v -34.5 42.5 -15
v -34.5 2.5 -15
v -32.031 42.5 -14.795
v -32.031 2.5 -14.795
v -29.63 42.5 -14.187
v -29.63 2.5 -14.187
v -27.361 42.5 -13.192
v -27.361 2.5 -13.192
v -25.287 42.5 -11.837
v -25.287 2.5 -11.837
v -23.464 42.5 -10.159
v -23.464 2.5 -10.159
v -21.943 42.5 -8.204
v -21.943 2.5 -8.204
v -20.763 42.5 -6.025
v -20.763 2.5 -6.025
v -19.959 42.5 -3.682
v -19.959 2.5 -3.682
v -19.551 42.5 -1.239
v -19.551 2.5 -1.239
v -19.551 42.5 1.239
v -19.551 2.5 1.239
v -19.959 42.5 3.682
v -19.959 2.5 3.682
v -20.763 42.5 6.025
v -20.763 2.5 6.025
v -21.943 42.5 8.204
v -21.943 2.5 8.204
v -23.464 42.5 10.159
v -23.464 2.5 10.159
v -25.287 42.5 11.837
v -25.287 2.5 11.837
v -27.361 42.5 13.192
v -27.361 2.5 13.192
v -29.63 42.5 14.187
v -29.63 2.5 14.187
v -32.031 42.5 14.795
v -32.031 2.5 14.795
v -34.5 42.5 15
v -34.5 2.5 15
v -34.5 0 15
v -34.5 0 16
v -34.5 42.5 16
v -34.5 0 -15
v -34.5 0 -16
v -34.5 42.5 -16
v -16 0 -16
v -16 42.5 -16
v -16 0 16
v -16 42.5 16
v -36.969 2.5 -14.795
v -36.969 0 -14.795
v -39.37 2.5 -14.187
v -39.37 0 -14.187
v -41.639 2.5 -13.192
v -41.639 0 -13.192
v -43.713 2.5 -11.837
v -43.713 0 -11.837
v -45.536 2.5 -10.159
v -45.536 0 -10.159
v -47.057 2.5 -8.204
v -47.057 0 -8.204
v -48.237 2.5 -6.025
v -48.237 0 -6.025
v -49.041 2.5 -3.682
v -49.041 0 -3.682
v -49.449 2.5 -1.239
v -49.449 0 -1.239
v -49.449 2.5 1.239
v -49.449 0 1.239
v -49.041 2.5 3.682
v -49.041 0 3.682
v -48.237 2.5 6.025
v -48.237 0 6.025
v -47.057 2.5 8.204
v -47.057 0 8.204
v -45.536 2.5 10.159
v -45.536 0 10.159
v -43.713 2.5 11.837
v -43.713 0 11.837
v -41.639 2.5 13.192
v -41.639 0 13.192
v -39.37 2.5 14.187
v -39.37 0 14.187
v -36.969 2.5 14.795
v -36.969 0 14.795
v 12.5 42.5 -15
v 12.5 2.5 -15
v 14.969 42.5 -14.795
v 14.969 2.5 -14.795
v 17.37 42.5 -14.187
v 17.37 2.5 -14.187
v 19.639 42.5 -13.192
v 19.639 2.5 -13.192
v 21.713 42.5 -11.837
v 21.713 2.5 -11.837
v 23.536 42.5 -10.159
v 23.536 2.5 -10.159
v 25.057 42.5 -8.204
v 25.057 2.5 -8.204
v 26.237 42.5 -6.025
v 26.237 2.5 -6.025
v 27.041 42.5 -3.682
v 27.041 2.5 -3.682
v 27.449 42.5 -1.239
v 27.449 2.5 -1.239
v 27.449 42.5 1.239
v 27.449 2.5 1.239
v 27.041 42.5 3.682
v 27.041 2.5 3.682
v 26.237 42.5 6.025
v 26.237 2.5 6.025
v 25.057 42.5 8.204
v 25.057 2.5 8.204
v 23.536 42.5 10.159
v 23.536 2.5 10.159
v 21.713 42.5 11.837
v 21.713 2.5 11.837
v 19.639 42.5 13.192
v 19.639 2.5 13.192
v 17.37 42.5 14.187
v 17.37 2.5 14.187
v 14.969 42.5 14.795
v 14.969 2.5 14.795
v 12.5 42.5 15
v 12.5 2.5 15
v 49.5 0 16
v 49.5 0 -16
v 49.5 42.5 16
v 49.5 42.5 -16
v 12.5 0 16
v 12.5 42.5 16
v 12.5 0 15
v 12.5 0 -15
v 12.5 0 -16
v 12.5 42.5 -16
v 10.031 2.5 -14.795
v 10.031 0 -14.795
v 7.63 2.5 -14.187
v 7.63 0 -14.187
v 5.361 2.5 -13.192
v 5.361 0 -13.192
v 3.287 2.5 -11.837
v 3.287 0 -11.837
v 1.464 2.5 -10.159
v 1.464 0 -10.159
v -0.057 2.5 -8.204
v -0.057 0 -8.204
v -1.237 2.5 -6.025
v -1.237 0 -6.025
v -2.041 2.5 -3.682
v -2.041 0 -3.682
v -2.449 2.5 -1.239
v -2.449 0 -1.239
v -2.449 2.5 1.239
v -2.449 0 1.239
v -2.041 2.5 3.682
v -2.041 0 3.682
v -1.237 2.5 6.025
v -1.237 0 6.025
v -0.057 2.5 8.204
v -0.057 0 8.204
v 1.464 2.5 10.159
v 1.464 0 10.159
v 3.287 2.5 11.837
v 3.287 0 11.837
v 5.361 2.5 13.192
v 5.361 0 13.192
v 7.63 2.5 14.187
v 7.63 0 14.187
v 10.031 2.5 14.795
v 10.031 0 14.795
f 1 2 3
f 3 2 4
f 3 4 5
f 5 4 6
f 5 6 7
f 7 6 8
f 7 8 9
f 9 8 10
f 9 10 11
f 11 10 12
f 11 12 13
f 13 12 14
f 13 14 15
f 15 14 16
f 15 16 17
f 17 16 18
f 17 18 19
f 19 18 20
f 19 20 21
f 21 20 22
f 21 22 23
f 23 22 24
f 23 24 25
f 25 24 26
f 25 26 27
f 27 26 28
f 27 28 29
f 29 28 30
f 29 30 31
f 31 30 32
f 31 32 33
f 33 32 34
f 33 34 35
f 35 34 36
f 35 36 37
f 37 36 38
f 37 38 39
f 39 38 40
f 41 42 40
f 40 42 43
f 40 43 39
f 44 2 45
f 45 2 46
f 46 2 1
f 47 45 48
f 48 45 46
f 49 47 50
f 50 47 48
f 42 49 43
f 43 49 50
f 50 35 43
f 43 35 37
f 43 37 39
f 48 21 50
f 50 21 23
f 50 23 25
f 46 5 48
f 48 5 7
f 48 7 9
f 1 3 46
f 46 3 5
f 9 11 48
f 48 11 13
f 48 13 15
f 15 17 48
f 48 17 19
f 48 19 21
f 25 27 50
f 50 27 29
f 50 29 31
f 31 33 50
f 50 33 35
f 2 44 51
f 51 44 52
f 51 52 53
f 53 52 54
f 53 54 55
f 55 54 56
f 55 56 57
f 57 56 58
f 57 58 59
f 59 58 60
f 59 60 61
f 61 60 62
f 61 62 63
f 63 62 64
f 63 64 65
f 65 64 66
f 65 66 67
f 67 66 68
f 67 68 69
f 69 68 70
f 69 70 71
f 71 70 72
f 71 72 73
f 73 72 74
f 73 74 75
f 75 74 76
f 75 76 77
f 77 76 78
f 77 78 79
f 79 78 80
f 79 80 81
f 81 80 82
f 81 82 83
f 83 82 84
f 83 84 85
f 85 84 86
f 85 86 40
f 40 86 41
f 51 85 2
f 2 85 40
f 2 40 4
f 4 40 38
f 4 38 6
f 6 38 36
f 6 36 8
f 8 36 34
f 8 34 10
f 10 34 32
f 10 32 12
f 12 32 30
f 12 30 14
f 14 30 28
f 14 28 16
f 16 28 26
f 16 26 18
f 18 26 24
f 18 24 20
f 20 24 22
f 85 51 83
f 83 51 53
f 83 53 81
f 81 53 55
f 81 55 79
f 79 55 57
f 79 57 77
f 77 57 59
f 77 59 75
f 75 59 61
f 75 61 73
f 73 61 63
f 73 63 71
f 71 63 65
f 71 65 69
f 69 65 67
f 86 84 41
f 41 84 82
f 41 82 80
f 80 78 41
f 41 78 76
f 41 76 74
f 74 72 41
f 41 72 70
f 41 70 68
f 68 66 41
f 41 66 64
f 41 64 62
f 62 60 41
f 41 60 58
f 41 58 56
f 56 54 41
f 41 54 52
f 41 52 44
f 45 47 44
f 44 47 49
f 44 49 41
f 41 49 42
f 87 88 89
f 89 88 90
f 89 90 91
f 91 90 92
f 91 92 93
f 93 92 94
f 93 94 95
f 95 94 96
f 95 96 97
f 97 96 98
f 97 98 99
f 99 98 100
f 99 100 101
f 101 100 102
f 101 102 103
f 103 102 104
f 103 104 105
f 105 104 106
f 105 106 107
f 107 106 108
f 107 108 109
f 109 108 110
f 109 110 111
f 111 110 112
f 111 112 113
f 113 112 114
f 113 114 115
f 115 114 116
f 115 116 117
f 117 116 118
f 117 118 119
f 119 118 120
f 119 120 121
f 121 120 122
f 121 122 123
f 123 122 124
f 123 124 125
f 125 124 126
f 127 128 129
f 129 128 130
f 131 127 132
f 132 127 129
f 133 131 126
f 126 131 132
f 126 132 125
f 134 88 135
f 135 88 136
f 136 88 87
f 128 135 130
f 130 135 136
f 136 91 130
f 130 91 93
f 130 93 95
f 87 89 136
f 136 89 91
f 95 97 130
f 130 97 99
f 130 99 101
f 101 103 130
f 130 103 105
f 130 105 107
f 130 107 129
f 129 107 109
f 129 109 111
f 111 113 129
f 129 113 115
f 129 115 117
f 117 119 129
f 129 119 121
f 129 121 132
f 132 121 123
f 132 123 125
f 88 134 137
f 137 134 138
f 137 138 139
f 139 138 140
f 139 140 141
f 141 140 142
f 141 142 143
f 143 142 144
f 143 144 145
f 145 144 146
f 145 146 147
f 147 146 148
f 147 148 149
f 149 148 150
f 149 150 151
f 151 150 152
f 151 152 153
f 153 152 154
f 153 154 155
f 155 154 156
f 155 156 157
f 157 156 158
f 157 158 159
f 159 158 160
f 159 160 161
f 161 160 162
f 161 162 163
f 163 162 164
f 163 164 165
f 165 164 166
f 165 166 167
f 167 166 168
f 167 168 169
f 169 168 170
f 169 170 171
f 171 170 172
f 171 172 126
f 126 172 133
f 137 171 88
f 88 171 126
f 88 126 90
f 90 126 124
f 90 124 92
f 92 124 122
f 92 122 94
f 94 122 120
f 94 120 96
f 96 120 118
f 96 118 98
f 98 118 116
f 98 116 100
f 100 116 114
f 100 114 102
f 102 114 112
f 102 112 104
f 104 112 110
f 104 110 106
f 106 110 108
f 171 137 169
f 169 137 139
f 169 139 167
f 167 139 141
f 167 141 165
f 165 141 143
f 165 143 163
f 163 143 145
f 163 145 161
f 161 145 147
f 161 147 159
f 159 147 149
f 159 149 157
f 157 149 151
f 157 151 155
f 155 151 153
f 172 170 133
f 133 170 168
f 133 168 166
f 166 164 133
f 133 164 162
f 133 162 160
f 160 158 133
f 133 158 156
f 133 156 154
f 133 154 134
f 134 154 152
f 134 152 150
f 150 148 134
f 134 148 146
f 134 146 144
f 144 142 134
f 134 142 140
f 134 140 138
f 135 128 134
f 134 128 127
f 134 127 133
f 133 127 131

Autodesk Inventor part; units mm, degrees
ref_plane "YZ Plane" through (0, 0, 0) normal (1, 0, 0) x (0, 1, 0)
ref_plane "XZ Plane" through (0, 0, 0) normal (0, 1, 0) x (-1, 0, 0)
ref_plane "XY Plane" through (0, 0, 0) normal (0, 0, 1) x (1, 0, 0)
sketch "Sketch2" plane through (0, 0, 0) normal (0, 1, 0) x (-1, 0, 0)
  line L0 (49.5, 16) -> (-49.5, 16)
  line L1 (-49.5, 16) -> (-49.5, -16)
  line L2 (-49.5, -16) -> (49.5, -16)
  line L3 (49.5, -16) -> (49.5, 16)
  circle A0 centre (-12.5, 0) radius 15
  circle A1 centre (34.5, 0) radius 15
  line L4 (16, 16) -> (-12.5, 16)
  line L5 (-12.5, 16) -> (-12.5, -16)
  line L6 (-12.5, -16) -> (16, -16)
  line L7 (16, -16) -> (16, 16)
  line L8 (49.5, 16) -> (34.5, 16)
  line L9 (34.5, 16) -> (34.5, -16)
  line L10 (34.5, -16) -> (49.5, -16)
  line L11 (49.5, -16) -> (49.5, 16)
  point P0 (0, 0)
  point P1 (49.5, 0)
  point P2 (34.5, 15)
  point P3 (34.5, -15)
  point P4 (-12.5, -15)
  point P5 (-12.5, 15)
  dimension "d0" = 99
  dimension "d1" = 32
  dimension "d2" = 16
  dimension "d3" = 49.5
  dimension "d6" = 30
  dimension "d7" = 37
  dimension "d8" = 30
  dimension "d9" = 47
  dimension "d10" = 28.5
  dimension "d11" = 0
extrude "Extrusion2" add sketch "Sketch2" along normal blind 42.5 contours L9 A1 L2 L7 L0 | L5 A0 L2 L1 L0
extrude "Extrusion3" add sketch "Sketch2" along normal blind 2.5 separate body contours A1 L9 | L9 A1 | L5 A0 | A0 L5
combine bodies "Combine1" operation type add bodies to combine 1 2
properties part number "motor-holders"
